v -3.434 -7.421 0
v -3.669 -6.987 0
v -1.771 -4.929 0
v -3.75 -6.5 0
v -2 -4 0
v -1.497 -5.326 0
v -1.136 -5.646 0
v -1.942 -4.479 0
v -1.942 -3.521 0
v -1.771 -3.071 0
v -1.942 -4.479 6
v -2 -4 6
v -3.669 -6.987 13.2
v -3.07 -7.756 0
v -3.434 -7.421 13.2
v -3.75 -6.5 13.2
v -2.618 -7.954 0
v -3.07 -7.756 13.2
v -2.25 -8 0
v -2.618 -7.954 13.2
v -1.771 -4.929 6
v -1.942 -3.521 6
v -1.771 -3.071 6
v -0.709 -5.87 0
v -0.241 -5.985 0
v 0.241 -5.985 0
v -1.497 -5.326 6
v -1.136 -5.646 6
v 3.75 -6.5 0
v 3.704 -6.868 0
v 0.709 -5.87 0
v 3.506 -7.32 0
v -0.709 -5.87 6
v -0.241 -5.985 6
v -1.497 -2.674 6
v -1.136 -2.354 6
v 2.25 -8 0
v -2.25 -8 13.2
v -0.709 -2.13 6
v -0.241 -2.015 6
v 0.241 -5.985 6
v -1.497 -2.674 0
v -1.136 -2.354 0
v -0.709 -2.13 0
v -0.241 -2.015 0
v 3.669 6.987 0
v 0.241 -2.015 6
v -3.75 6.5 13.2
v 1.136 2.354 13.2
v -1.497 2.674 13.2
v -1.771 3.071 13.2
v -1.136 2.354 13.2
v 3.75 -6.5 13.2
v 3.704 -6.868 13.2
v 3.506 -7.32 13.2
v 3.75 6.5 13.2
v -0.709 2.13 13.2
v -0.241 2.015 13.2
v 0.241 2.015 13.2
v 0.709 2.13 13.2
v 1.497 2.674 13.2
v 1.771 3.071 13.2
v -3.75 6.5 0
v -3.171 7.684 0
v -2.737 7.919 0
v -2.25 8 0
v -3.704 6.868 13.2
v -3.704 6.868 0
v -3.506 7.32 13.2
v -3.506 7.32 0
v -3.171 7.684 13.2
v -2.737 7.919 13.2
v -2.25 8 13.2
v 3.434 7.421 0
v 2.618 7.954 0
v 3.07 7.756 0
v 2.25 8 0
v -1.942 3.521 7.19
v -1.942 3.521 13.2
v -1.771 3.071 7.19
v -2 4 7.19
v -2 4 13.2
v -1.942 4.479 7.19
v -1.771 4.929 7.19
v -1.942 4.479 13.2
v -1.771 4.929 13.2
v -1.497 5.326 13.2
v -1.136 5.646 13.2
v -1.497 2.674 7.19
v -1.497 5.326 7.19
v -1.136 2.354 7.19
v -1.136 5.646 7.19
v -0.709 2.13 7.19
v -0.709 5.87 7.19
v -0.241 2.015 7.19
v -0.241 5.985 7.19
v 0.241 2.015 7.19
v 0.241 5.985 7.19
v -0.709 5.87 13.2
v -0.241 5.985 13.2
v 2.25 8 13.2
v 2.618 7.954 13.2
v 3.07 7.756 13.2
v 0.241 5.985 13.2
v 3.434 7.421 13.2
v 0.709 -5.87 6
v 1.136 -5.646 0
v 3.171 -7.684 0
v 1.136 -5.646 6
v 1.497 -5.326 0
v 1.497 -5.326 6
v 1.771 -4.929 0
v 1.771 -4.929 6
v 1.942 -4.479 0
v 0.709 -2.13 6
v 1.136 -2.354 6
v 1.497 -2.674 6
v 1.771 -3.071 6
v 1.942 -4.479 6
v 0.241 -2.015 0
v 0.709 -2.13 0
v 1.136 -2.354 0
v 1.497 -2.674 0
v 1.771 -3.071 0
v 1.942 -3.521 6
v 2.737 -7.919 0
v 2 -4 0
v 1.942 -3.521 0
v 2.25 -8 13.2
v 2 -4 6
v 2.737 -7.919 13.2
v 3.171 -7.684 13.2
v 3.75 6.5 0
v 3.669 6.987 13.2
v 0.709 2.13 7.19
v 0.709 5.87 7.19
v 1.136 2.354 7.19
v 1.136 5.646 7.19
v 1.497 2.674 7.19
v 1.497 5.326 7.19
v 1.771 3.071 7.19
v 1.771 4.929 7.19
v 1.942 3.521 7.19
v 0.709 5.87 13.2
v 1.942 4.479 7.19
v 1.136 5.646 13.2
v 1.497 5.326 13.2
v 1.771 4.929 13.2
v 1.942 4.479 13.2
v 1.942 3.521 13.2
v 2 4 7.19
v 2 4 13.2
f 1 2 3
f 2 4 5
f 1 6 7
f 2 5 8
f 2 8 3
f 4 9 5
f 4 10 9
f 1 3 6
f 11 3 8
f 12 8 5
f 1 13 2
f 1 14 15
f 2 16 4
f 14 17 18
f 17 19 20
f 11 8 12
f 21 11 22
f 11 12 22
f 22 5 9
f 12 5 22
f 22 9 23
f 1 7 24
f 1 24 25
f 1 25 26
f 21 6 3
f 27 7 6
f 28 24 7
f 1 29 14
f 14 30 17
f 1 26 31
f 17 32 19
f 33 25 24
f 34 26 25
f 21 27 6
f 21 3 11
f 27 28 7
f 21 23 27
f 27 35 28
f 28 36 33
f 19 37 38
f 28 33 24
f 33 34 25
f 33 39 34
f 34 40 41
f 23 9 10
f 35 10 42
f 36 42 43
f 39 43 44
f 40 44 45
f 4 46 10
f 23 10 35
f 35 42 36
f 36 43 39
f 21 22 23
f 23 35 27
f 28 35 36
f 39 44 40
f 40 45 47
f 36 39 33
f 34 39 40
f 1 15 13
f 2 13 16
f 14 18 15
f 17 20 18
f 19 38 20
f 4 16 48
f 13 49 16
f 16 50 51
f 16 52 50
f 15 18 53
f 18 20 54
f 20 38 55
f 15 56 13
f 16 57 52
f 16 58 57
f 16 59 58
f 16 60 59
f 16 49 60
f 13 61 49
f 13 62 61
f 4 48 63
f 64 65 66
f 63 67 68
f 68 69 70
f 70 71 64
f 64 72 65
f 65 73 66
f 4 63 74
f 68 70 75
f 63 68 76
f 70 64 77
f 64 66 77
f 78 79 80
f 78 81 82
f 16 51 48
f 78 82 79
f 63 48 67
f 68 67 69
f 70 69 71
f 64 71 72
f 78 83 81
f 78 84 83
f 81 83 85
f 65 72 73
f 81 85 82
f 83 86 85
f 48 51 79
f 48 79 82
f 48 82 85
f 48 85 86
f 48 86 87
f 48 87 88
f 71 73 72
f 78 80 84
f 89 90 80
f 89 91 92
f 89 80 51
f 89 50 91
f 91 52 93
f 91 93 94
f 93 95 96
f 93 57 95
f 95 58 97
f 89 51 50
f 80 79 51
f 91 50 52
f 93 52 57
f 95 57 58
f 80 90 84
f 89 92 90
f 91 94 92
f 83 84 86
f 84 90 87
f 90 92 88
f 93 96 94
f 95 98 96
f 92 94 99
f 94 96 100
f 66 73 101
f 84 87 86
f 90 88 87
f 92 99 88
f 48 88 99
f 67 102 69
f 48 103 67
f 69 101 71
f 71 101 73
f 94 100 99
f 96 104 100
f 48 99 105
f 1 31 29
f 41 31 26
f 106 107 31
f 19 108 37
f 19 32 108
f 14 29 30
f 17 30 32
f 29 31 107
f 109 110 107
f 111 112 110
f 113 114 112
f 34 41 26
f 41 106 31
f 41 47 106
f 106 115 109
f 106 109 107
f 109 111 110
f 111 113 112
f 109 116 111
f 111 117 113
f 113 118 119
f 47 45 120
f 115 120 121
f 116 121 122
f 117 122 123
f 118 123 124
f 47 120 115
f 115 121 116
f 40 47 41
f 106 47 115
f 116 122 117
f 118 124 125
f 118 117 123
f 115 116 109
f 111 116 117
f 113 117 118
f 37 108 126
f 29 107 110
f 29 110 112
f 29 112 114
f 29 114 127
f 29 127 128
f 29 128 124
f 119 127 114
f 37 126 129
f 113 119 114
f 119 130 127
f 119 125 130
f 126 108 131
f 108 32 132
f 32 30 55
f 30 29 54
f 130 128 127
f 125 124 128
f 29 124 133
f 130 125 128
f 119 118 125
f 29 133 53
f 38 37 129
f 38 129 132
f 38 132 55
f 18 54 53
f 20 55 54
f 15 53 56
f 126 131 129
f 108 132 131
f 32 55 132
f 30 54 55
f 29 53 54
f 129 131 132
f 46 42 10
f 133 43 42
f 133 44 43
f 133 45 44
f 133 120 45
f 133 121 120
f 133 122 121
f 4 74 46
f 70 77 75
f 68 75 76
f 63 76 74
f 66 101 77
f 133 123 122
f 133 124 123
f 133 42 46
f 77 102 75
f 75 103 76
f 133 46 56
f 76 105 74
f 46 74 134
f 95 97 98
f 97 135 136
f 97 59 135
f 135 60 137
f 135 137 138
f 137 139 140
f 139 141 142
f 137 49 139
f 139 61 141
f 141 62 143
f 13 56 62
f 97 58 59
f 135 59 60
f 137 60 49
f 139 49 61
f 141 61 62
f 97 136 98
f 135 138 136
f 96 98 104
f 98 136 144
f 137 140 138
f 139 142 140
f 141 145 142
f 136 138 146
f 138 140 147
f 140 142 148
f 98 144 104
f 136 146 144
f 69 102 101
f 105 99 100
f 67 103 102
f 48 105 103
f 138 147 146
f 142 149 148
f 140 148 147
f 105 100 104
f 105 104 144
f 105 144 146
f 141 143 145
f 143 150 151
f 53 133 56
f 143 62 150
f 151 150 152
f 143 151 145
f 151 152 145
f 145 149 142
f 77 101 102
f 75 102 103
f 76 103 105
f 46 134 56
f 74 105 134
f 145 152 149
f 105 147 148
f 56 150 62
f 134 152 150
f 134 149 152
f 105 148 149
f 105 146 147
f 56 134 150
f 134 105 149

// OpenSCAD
// file: lib/lib.scad
// Shared helpers. Include AFTER params.scad (needs TOL, M3_* etc.).
$fa = 4; $fs = 0.5;

module rrect(size, r) {            // 2D rounded rectangle, centred
    r2 = min(r, min(size[0], size[1]) / 2 - 0.001);
    offset(r = r2) square([size[0] - 2 * r2, size[1] - 2 * r2], center = true);
}
module rbox(size, r, center_xy = true) {   // box with rounded vertical edges
    translate(center_xy ? [0, 0, 0] : [size[0] / 2, size[1] / 2, 0])
        linear_extrude(size[2]) rrect([size[0], size[1]], r);
}
module rbox_at(x0, x1, y0, y1, z0, z1, r = 0.01) {
    translate([(x0 + x1) / 2, (y0 + y1) / 2, z0]) rbox([x1 - x0, y1 - y0, z1 - z0], r);
}
module box_at(x0, x1, y0, y1, z0, z1) { translate([x0, y0, z0]) cube([x1 - x0, y1 - y0, z1 - z0]); }

module ring(ro, ri, h) { difference() { cylinder(r = ro, h = h); translate([0, 0, -1]) cylinder(r = ri, h = h + 2); } }
module ring_sector(ro, ri, h, a0, a1) {
    intersection() {
        ring(ro, ri, h);
        linear_extrude(h) polygon(concat([[0, 0]], [for (a = [a0 : (a1 - a0) / 24 : a1]) 2 * ro * [cos(a), sin(a)]]));
    }
}
// teardrop hole along an axis lying horizontal (axis = Y after rotation), printable w/o support
module teardrop2d(d) { union() { circle(d = d); rotate(45) square(d / 2); } }
// vertical heat-set insert hole, opening at z=0 going +z (depth l)
module insert_hole(l = M3_INSERT_L) { translate([0, 0, -EPS]) cylinder(d = M3_INSERT_D, h = l + EPS); }
module m3_clear(l) { translate([0, 0, -EPS]) cylinder(d = M3_CLEAR, h = l + 2 * EPS); }
module m3_csk(l) {  // countersunk clearance from z=0 upward, head at z=0 side
    translate([0, 0, -EPS]) { cylinder(d = M3_CLEAR, h = l + 2 * EPS); cylinder(d1 = 6.4, d2 = M3_CLEAR, h = 1.7); }
}
module card2d() { rrect([CARD_L, CARD_W], CARD_R); }
module card_at(cy, z) { translate([0, cy, z]) linear_extrude(CARD_T) card2d(); }

// ---- gears ----
function _inv(a) = tan(a) - a * PI_ / 180;           // involute function, a in deg
function _invpt(rb, r, ang0, s) = let(al = acos(rb / r), th = ang0 - s * (_inv(al) * 180 / PI_)) [r * cos(th), r * sin(th)];
module involute_gear2d(m, z, pa = 20, clearance = 0.05) {
    rp = m * z / 2; rb = rp * cos(pa); ra = rp + m - clearance; rf = rp - 1.25 * m;
    half = 90 / z + _inv(pa) * 180 / PI_;            // tooth half-angle at base (deg)
    n = 8;
    rs = [for (i = [0 : n]) max(rb, rf) + (ra - max(rb, rf)) * i / n];
    union() {
        circle(r = rf, $fn = z * 4);
        for (k = [0 : z - 1]) rotate(k * 360 / z) polygon(concat(
            [[rf * cos(-half), rf * sin(-half)]],
            [for (r = rs) let(p = _invpt(rb, r, half, 1)) [p[0], -p[1]]],
            [for (i = [n : -1 : 0]) _invpt(rb, rs[i], half, 1)],
            [[rf * cos(half), rf * sin(half)]]));
    }
}
// straight gear rack (2D in XY: teeth along +x, pointing -y, pitch line at y=0)
module gear_rack2d(m, len, back = 3) {
    p = PI_ * m; ad = m; de = 1.25 * m; t = tan(20);
    n = ceil(len / p) + 1;
    intersection() {
        union() {
            translate([0, de]) square([len, back]);
            for (i = [0 : n]) if (i * p - p / 4 - (p / 4 + de * t) >= 0 && i * p + de * t <= len) translate([i * p - p / 4, 0]) polygon([
                [-(p / 4 + de * t), de + 0.01], [p / 4 + de * t + 0.01, de + 0.01],
                [p / 4 - ad * t, -ad], [-(p / 4 - ad * t), -ad] ]);
        }
        translate([0, -ad - 1]) square([len, ad + de + back + 2]);
    }
}
// GT2 belt-tooth profile ring (teeth outward), 2D
module gt2_ring2d(n, r_land, ri) {
    union() {
        difference() { circle(r = r_land + 0.01, $fn = n * 2); circle(r = ri, $fn = n * 2); }
        for (k = [0 : n - 1]) rotate(k * 360 / n)
            translate([r_land, 0]) hull() { translate([-0.2, 0]) square([0.2, 1.0], center = true); translate([0.25, 0]) circle(r = 0.5, $fn = 12); }
    }
}
// main file
// Shell anchor (x4): screwed to the turntable from below (CSK M3, assembly time); the turret
// shell's tabs sit on top and are screwed down from ABOVE (cap off, long Allen key), so the
// shell lifts off without separating turret and base. Print: upright, no supports.
include <params.scad>
include <lib/lib.scad>
module shell_anchor(a = SHELL_TAB_A[0]) rotate(a) difference() {
    translate([SHELL_TAB_R, 0, TT_TOP]) rbox([7.5, 16, ANCHOR_H], 1.5);
    translate([SHELL_TAB_R, -4, TT_TOP]) insert_hole();
    translate([SHELL_TAB_R, 4, TT_TOP + ANCHOR_H - M3_INSERT_L]) insert_hole(M3_INSERT_L + 1);
}
module shell_anchor_print() translate([-SHELL_TAB_R, 0, -TT_TOP]) shell_anchor(0);
shell_anchor_print();
